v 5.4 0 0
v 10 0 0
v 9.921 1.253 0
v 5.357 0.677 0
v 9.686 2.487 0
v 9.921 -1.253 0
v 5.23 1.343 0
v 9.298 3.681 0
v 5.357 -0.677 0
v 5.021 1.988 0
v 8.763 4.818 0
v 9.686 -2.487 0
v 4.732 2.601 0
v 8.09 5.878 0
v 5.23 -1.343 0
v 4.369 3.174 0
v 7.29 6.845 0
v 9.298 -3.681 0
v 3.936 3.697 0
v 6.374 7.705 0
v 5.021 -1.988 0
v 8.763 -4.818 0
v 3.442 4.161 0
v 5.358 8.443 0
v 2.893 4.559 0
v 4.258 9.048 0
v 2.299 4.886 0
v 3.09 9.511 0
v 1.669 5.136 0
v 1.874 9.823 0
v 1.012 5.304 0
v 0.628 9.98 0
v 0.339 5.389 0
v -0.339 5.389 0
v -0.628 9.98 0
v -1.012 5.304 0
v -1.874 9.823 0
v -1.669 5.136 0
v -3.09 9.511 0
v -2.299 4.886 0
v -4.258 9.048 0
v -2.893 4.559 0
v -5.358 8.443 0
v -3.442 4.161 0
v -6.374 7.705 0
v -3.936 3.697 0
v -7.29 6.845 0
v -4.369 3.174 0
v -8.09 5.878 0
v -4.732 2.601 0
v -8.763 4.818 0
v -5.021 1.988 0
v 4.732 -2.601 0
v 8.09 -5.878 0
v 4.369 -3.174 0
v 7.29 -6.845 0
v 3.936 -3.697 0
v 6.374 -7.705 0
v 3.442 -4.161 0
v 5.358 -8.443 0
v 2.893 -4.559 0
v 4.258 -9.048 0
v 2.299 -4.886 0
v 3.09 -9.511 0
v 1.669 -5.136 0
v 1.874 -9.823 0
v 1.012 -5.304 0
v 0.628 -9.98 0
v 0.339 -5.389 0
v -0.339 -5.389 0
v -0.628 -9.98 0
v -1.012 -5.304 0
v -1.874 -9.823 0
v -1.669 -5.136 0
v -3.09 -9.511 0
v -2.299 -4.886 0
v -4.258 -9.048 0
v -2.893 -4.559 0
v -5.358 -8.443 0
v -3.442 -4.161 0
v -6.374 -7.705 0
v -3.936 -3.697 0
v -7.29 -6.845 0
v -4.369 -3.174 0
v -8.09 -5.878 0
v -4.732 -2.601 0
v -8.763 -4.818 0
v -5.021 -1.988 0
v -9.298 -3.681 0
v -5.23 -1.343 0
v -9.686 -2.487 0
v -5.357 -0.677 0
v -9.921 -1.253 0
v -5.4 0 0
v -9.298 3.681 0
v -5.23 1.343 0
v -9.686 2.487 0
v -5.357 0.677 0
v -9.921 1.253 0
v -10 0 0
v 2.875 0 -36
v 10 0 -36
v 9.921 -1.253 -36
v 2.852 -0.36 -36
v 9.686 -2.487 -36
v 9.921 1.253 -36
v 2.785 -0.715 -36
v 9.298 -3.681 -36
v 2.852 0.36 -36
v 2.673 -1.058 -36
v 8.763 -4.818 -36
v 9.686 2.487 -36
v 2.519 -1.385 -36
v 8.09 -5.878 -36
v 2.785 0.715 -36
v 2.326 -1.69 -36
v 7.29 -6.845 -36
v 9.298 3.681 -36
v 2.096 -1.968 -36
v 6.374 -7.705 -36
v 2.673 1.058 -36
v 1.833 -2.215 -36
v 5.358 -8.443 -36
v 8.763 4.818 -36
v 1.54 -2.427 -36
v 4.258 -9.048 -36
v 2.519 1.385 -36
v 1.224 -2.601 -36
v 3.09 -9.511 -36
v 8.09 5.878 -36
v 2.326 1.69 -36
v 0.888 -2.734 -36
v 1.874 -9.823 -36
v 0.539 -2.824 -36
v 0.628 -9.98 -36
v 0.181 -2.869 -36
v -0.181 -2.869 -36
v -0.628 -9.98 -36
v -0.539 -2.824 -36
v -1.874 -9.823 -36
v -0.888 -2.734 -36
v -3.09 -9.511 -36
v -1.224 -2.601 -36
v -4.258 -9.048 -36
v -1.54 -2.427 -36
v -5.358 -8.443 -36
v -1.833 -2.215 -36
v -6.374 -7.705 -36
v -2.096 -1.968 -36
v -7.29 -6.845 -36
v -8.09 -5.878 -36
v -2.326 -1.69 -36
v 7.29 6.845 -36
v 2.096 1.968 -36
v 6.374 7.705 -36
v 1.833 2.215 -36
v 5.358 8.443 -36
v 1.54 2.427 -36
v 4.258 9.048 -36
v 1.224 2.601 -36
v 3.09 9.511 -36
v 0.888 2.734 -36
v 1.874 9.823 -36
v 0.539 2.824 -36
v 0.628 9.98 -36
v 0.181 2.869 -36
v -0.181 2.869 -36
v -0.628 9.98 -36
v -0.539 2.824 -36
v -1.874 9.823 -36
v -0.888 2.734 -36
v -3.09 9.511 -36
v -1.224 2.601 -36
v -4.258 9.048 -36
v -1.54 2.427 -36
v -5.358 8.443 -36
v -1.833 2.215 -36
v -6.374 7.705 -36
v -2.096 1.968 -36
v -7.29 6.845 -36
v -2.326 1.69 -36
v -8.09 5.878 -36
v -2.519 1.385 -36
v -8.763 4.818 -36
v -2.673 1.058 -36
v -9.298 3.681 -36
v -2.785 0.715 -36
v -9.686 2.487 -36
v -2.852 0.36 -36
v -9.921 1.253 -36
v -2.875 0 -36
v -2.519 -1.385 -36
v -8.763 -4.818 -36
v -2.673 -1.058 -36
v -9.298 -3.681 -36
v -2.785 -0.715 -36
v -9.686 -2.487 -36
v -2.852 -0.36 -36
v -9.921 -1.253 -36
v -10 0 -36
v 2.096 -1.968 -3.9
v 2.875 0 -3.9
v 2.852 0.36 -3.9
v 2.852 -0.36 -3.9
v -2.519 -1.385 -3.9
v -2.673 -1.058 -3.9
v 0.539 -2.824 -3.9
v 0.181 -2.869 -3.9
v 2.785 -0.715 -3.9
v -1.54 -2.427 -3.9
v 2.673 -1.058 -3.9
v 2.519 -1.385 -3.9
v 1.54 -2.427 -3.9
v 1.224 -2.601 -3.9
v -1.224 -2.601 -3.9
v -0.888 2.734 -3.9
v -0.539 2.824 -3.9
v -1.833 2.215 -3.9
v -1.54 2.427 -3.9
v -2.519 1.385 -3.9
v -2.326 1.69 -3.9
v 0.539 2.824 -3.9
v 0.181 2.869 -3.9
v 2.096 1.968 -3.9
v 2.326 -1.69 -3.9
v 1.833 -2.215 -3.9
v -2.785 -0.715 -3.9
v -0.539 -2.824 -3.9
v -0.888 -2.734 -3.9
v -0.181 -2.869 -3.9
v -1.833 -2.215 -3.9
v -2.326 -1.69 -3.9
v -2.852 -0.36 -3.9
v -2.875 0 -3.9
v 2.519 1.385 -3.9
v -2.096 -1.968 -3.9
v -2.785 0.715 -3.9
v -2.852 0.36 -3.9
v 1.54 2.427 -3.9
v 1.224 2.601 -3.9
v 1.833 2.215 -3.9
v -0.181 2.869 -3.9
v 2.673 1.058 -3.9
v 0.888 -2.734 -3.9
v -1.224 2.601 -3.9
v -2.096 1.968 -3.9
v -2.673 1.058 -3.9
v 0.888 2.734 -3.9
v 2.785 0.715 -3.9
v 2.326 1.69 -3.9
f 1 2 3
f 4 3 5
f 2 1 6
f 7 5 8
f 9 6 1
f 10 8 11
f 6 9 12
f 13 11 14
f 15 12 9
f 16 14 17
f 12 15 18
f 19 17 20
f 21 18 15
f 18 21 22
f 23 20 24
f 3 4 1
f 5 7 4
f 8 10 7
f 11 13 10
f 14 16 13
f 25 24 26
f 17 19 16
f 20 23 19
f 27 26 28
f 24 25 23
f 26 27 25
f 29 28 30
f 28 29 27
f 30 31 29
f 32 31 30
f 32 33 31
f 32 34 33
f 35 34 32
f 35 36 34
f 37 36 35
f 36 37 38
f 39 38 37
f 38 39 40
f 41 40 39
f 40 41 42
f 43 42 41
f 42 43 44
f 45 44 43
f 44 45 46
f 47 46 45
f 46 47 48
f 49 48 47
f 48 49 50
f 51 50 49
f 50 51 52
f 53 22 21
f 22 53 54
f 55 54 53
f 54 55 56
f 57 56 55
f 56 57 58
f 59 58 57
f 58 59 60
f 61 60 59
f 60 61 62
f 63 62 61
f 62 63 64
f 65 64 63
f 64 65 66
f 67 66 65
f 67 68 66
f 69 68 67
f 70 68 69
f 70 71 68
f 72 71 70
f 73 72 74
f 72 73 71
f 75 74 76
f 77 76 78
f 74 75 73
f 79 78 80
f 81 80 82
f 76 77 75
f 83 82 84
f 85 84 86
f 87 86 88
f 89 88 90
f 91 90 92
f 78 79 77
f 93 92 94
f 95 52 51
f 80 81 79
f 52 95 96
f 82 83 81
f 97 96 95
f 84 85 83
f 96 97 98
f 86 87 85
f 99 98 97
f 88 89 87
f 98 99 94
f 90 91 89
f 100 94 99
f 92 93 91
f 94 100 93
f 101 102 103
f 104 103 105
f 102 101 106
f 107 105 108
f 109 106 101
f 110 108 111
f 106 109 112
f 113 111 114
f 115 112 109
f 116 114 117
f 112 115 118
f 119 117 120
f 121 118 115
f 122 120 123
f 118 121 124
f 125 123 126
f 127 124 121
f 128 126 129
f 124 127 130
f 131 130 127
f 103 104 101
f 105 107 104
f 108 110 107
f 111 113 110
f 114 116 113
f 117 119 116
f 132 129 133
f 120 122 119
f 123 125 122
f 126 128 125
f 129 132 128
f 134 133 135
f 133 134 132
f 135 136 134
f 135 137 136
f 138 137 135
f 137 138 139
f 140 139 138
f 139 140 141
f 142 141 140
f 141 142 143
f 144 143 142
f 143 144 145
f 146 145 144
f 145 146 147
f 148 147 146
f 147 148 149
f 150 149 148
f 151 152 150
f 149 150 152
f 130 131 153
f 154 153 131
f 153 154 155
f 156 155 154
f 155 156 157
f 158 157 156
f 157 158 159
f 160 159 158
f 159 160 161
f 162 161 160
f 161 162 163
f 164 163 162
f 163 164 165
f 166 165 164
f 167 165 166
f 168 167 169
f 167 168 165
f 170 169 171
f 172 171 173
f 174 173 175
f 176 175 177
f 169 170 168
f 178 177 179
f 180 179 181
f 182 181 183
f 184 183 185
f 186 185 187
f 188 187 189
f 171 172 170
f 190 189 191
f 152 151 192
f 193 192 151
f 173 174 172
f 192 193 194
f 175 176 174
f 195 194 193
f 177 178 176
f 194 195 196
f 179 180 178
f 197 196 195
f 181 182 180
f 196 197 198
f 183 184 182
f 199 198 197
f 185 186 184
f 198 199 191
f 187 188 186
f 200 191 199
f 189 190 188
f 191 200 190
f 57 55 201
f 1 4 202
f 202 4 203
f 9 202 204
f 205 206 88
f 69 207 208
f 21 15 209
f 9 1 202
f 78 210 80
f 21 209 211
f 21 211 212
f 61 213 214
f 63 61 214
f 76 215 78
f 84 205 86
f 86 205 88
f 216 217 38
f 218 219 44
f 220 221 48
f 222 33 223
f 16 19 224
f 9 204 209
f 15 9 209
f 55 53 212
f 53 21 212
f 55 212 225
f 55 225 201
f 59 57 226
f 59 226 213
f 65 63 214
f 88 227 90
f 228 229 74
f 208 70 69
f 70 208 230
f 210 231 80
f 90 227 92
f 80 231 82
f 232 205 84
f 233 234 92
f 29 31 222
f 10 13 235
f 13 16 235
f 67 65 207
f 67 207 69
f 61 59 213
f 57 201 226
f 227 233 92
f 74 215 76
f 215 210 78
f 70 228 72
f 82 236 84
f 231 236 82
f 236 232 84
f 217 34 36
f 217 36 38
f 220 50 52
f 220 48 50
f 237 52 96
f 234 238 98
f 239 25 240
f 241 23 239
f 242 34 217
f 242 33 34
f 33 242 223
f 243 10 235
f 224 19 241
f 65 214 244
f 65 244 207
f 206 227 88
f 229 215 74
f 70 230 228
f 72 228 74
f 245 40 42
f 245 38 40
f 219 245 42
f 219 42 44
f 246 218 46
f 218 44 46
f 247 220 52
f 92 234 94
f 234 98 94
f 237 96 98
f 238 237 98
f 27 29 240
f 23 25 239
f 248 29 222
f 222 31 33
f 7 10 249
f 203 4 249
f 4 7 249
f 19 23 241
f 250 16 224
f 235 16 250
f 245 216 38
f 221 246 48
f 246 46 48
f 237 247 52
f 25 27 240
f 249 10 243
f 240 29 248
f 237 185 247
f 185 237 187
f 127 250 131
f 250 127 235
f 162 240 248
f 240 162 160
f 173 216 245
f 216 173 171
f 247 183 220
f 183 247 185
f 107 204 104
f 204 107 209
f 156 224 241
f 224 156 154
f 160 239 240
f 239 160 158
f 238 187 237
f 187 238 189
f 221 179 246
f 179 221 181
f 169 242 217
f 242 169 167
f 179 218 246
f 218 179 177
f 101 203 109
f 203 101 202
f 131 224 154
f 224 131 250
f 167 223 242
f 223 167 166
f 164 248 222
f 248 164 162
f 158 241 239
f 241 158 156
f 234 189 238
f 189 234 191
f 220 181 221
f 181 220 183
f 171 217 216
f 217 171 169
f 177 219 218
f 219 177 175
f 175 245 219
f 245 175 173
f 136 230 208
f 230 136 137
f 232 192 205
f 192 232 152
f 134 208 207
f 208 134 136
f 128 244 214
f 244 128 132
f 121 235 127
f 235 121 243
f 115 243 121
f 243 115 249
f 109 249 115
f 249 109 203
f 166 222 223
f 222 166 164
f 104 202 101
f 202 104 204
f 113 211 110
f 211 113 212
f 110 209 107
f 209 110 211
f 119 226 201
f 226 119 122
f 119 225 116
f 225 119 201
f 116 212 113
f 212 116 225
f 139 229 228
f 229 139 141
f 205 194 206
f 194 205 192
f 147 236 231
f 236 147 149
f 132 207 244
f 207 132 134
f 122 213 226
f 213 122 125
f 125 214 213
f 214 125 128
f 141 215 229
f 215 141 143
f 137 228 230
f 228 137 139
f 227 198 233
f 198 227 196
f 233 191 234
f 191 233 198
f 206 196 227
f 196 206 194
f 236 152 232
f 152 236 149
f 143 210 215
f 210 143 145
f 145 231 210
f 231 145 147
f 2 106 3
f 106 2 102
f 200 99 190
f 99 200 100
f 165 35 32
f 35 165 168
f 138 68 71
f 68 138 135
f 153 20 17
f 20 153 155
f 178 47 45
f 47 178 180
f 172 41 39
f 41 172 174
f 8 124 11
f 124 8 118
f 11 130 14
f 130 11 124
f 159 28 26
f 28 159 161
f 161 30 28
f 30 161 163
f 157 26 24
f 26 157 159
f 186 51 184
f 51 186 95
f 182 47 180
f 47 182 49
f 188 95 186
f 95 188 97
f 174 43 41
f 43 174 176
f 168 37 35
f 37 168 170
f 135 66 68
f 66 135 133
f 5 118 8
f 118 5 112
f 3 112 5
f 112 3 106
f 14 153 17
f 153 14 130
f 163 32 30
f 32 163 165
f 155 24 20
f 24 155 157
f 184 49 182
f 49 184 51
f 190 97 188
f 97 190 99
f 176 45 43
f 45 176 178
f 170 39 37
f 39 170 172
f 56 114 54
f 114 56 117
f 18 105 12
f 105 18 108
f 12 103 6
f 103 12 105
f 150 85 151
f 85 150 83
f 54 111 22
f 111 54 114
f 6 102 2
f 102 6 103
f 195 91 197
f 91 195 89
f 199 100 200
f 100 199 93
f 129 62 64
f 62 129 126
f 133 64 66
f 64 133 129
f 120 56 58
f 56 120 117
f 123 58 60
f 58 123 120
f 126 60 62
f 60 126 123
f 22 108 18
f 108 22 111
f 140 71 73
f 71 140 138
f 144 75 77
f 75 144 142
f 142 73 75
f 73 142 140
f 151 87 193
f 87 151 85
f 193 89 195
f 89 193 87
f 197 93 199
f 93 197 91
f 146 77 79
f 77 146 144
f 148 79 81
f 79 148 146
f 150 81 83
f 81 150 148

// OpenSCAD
$fn = 50;


difference() {
	union() {
		translate(v = [0, 0, -36.0000000000]) {
			cylinder(h = 36, r = 10.0000000000);
		}
		cylinder(h = 0, r = 19.0000000000);
	}
	union() {
		translate(v = [0, 0, 0]) {
			rotate(a = [0, 0, 0]) {
				difference() {
					union() {
						#translate(v = [0, 0, -36.0000000000]) {
							cylinder(h = 36, r = 2.6000000000);
						}
						#translate(v = [0, 0, -3.9000000000]) {
							cylinder(h = 3.9000000000, r1 = 2.8750000000, r2 = 5.4000000000);
						}
						#translate(v = [0, 0, -36.0000000000]) {
							cylinder(h = 36, r = 2.8750000000);
						}
						#translate(v = [0, 0, -36.0000000000]) {
							cylinder(h = 36, r = 2.6000000000);
						}
					}
					union();
				}
			}
		}
	}
}
